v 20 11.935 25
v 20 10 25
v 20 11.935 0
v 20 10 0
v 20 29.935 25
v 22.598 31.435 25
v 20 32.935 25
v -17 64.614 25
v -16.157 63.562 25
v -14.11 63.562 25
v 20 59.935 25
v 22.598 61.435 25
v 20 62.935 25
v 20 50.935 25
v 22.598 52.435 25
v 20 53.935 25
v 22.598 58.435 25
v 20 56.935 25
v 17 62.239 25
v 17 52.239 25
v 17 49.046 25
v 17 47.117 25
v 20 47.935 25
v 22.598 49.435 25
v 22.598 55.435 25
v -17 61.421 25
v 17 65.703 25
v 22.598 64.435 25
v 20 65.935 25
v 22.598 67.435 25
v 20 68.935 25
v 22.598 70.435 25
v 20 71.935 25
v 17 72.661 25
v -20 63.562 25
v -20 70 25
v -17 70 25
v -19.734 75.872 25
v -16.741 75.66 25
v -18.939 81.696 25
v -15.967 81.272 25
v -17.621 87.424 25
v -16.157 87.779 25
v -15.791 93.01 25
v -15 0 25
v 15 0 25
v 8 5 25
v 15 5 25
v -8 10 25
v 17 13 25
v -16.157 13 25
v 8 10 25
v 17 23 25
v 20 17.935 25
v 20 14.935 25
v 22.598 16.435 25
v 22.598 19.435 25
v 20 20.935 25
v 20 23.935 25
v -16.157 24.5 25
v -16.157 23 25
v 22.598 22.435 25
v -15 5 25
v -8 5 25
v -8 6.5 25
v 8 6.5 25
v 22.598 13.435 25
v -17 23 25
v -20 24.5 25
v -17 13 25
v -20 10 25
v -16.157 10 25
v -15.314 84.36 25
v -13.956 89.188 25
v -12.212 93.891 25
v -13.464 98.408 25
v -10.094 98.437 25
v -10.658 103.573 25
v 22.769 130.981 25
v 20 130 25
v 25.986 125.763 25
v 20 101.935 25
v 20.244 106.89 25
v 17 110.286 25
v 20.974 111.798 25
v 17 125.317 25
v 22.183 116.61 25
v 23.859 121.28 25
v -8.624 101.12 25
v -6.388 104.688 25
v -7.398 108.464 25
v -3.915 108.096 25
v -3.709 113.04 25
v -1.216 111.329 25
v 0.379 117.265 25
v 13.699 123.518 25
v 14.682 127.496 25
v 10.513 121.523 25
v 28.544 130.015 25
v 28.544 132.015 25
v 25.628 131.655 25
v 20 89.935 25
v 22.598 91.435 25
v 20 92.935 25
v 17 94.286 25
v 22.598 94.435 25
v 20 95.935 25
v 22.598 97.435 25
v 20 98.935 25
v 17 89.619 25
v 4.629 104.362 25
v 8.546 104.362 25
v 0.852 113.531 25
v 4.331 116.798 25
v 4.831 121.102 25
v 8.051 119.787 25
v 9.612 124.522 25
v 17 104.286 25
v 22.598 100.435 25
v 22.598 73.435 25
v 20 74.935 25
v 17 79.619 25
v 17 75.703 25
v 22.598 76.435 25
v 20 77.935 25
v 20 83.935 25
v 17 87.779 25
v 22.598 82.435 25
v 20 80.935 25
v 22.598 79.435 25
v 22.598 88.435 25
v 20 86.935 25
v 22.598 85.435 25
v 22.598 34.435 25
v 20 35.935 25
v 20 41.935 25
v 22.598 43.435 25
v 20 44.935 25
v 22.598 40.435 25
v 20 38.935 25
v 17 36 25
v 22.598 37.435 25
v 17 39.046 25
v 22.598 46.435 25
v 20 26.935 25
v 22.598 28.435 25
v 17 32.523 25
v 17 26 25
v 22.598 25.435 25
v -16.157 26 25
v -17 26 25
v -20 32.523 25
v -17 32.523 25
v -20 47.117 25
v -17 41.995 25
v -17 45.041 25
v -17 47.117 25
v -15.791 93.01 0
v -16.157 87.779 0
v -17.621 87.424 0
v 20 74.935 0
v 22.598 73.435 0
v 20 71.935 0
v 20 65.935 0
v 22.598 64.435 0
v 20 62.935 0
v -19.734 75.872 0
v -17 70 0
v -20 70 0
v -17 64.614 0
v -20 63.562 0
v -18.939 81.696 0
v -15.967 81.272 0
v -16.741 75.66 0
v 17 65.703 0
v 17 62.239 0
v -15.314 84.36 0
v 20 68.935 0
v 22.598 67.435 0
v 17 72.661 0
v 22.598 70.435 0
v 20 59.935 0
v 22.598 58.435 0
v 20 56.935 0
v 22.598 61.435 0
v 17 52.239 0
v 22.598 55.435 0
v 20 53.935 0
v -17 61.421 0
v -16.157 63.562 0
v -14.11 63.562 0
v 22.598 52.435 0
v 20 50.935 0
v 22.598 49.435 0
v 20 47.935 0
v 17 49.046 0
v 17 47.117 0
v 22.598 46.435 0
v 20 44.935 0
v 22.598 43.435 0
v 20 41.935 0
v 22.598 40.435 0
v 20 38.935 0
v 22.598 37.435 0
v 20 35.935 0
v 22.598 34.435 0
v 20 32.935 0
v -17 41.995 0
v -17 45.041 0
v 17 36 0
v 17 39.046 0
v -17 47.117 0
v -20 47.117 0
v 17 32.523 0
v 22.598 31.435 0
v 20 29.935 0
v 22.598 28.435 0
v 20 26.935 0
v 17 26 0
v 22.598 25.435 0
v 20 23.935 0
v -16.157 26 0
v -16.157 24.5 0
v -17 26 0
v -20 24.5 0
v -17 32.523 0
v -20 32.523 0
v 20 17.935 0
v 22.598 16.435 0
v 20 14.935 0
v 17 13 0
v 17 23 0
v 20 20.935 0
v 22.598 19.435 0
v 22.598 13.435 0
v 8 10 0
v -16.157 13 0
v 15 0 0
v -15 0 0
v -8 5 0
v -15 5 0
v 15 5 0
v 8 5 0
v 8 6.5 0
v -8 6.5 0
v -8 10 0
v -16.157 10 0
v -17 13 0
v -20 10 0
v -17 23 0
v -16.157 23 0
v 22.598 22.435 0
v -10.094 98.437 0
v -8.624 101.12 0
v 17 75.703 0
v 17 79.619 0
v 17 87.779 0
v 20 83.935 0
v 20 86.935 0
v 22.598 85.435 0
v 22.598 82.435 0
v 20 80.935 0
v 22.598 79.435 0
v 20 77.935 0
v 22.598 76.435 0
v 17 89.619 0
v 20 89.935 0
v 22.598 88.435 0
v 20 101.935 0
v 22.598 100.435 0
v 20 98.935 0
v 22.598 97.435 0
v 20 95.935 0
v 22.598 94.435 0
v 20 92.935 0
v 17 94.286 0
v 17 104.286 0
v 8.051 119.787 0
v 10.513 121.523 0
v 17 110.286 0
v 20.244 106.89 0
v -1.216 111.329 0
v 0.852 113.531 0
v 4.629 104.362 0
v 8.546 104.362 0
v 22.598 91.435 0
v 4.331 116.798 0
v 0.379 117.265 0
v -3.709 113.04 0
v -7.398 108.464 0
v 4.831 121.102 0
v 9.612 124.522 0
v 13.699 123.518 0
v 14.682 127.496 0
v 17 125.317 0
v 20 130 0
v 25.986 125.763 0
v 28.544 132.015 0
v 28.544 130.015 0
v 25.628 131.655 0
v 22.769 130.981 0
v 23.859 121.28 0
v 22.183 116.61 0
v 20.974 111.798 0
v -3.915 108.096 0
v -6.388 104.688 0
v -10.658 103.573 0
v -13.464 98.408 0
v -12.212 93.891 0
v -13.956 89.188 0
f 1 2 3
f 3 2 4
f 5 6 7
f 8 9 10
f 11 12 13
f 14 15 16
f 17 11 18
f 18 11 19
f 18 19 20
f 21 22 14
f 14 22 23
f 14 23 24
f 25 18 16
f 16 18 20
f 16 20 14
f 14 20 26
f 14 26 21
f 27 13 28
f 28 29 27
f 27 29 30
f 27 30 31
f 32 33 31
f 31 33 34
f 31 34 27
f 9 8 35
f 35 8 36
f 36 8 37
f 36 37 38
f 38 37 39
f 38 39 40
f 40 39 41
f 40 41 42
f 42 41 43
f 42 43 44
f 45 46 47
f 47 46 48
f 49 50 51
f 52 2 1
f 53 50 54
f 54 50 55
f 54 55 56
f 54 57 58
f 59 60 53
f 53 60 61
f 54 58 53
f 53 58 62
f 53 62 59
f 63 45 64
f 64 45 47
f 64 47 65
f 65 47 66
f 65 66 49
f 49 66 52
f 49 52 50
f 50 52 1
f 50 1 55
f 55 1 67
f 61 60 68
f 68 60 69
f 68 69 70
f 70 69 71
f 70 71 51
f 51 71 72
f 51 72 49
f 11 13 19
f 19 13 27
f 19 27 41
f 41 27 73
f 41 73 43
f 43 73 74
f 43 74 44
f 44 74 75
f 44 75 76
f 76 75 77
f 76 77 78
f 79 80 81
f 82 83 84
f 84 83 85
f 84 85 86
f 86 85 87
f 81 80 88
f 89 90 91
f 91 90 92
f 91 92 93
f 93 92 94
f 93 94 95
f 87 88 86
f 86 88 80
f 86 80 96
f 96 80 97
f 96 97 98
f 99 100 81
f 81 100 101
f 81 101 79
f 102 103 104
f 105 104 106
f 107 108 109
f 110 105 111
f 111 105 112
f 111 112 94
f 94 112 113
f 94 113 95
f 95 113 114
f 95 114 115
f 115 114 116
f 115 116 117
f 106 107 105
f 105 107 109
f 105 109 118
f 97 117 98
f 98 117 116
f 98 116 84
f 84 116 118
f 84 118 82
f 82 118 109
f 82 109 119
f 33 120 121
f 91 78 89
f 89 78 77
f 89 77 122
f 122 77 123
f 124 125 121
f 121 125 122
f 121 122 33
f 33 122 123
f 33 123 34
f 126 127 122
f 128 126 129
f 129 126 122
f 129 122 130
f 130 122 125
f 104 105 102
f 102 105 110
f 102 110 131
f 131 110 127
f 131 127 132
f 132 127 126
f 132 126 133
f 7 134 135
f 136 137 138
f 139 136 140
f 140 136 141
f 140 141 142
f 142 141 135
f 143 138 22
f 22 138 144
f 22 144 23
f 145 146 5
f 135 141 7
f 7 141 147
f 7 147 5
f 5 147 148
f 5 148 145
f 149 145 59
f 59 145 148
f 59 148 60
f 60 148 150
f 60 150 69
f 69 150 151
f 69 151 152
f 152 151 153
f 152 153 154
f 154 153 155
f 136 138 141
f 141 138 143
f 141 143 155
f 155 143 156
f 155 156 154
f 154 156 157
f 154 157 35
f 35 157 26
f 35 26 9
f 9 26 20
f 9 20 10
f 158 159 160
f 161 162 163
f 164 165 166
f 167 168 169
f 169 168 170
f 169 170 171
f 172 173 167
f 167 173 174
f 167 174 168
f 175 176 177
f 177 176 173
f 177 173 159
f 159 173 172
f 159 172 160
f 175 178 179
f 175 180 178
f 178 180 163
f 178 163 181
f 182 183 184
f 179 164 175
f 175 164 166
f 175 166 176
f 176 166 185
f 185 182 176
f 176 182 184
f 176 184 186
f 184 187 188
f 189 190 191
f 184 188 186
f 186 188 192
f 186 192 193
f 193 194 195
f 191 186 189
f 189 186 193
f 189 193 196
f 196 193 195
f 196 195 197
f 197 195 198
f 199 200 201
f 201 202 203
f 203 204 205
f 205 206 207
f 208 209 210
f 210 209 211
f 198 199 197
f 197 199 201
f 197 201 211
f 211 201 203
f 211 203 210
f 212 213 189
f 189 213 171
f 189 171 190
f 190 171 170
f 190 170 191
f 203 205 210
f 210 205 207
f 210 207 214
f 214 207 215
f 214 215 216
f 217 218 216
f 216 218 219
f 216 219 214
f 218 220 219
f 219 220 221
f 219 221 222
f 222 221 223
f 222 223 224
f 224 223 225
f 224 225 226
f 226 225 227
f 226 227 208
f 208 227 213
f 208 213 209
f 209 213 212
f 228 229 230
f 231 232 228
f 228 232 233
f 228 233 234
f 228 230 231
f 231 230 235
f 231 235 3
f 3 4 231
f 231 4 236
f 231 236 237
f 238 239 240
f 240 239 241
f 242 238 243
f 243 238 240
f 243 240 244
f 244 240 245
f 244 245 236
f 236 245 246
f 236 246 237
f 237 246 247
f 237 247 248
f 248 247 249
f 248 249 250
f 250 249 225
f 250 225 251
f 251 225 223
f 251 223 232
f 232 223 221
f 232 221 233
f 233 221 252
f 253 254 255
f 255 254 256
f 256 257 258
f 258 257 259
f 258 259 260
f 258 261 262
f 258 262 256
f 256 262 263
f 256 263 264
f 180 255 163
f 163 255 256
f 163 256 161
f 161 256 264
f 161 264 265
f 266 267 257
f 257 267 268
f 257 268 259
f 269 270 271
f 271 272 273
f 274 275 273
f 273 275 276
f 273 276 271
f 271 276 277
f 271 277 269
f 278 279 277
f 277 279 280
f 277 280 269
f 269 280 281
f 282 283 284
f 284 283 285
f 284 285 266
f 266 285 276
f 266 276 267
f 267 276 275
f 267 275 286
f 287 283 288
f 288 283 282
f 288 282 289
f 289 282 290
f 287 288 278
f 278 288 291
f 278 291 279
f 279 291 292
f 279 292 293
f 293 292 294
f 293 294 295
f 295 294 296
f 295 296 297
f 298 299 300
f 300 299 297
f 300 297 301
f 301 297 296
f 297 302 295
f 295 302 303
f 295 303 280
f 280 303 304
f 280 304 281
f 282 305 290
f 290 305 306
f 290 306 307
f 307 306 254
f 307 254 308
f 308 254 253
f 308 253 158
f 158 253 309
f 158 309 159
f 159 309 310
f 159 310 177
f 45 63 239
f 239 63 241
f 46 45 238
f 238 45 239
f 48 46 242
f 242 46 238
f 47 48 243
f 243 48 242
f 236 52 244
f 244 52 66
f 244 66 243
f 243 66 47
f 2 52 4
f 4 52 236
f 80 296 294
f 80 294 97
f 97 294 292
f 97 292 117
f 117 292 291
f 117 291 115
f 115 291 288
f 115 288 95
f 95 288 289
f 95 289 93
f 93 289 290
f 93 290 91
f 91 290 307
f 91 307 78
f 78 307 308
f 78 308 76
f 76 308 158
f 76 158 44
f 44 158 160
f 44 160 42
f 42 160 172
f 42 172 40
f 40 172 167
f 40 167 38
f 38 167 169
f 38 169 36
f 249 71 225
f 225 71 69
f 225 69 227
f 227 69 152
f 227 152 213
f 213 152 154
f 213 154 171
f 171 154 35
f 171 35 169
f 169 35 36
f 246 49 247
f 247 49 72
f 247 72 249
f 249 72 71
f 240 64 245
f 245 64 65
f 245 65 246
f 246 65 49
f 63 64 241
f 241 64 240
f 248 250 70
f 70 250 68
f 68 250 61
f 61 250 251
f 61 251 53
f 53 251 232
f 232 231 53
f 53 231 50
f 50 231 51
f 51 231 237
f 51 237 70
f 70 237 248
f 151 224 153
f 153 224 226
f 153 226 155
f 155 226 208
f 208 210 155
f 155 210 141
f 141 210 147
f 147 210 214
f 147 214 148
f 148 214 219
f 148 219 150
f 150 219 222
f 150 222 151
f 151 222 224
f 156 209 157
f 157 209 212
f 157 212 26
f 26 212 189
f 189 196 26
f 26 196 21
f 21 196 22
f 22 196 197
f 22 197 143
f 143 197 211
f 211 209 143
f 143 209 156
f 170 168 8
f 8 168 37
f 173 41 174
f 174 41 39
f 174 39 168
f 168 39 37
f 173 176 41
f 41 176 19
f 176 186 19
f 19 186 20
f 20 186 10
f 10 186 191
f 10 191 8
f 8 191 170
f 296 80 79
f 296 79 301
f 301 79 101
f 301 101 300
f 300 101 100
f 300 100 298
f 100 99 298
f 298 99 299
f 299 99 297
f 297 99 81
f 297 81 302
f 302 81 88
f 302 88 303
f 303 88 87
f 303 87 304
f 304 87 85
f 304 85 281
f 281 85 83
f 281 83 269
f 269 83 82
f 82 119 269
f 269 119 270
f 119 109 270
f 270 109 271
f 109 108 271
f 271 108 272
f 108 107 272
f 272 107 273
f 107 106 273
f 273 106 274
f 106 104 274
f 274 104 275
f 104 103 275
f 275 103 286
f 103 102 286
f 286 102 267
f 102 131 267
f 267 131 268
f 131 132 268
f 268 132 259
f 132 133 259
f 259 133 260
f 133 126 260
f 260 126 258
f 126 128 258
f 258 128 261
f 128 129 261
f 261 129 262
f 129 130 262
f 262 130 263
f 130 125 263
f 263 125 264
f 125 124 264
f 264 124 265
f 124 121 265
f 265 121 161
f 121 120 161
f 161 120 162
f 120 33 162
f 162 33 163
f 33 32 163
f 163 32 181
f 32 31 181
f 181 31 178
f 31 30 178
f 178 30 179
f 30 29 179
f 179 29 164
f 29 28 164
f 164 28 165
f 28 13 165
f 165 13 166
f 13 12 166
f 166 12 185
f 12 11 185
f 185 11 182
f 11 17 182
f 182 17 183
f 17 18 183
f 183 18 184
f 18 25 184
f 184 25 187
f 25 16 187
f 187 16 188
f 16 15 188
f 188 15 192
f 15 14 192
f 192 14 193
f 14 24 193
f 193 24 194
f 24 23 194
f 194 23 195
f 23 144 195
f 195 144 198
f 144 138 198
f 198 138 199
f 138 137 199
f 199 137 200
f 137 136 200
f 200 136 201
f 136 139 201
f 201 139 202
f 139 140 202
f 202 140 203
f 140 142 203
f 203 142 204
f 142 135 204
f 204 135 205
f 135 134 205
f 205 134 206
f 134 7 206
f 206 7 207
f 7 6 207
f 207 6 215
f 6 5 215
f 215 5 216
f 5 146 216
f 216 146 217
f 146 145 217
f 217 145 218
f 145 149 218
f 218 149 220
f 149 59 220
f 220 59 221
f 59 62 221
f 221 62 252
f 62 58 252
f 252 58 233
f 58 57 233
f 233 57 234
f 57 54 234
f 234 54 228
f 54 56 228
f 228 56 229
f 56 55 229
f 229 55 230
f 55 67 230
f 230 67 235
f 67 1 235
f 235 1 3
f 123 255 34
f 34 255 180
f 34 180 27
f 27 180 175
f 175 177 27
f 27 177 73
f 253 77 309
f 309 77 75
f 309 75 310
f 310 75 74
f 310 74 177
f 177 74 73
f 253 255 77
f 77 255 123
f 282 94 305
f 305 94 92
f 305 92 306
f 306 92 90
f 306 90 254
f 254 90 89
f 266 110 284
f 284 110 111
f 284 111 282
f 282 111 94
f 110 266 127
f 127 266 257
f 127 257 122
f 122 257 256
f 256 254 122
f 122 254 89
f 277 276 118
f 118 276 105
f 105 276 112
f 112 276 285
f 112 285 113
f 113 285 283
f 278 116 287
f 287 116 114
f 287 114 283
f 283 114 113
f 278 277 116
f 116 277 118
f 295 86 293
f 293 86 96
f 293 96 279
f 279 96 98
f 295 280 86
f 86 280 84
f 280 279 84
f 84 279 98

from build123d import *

# Parameters (mm, degrees)
BOSS_EXTRUDE1_DEPTH = 25
SKETCH3_W           = 34
SKETCH3_H           = 10
CUT_EXTRUDE1_DEPTH  = 134.88427839
CUT_EXTRUDE2_DEPTH  = 134.88427839
CUT_EXTRUDE3_DEPTH  = 134.88427839
CUT_EXTRUDE4_DEPTH  = 134.88427839
BOSS_EXTRUDE2_DEPTH = 25
BOSS_EXTRUDE3_DEPTH = 25
LPATTERN1_COUNT     = 30
LPATTERN1_PITCH     = 3
CUT_EXTRUDE5_DEPTH  = 138.359842306
CUT_EXTRUDE6_DEPTH  = 138.359842306
CUT_EXTRUDE7_DEPTH  = 138.359842306
CUT_EXTRUDE8_DEPTH  = 138.359842306


with BuildPart() as part:
    # Sketch2 → Boss-Extrude1 (new body)
    with BuildSketch(Plane.XY):
        with BuildLine():
            Line((-15, 0), (15, 0))
            Line((15, 0), (15, 5))
            Line((15, 5), (8, 5))
            Line((8, 5), (8, 10))
            Line((8, 10), (20, 10))
            Line((20, 10), (20, 130))
            ThreePointArc((20, 130), (-9.083269132, 106.055512755), (-20, 70))
            Line((-20, 70), (-20, 10))
            Line((-20, 10), (-8, 10))
            Line((-8, 10), (-8, 5))
            Line((-8, 5), (-15, 5))
            Line((-15, 5), (-15, 0))
        make_face()
    extrude(amount=BOSS_EXTRUDE1_DEPTH)

    # Sketch3 → Cut-Extrude1 (cut, through all)
    with BuildSketch(Plane.XY.offset(25)):
        with Locations((0, 18)):
            Rectangle(SKETCH3_W, SKETCH3_H)
    extrude(amount=-CUT_EXTRUDE1_DEPTH, mode=Mode.SUBTRACT)

    # Sketch4 → Cut-Extrude2 (cut, through all)
    with BuildSketch(Plane.XY.offset(25)):
        Polygon((-17, 26), (17, 26), (17, 36), (-17, 41.995117344), align=None)
    extrude(amount=-CUT_EXTRUDE2_DEPTH, mode=Mode.SUBTRACT)

    # Sketch5 → Cut-Extrude3 (cut, through all)
    with BuildSketch(Plane.XY.offset(25)):
        Polygon((-17, 45.04139718), (17, 39.046279836), (17, 49.046279836), (-17, 61.421267801), align=None)
    extrude(amount=-CUT_EXTRUDE3_DEPTH, mode=Mode.SUBTRACT)

    # Sketch6 → Cut-Extrude4 (cut, through all)
    with BuildSketch(Plane.XY.offset(25)):
        with BuildLine():
            Line((-17, 64.613801118), (17, 52.238813153))
            Line((17, 52.238813153), (17, 62.238813153))
            Line((17, 62.238813153), (-15.966701553, 81.272147169))
            ThreePointArc((-15.966701553, 81.272147169), (-16.741134976, 75.659704221), (-17, 70))
            Line((-17, 70), (-17, 64.613801118))
        make_face()
    extrude(amount=-CUT_EXTRUDE4_DEPTH, mode=Mode.SUBTRACT)

    # Sketch13 → Boss-Extrude2 (add)
    with BuildSketch(Plane.XY.offset(25)):
        with BuildLine():
            Line((28.543587015, 132.015112463), (28.543587015, 130.015112463))
            ThreePointArc((28.543587015, 130.015112463), (22.183163486, 116.610368534), (20, 101.934676234))
            Line((20, 101.934676234), (20, 130))
            ThreePointArc((20, 130), (24.189413282, 131.356828362), (28.543587015, 132.015112463))
        make_face()
    extrude(amount=-BOSS_EXTRUDE2_DEPTH)

    # Sketch15 → Boss-Extrude3 (add)
    with BuildSketch(Plane.XY.offset(25)):
        Polygon((20, 101.934676234), (22.598076211, 100.434676234), (20, 98.934676234), align=None)
    boss_extrude3 = extrude(amount=-BOSS_EXTRUDE3_DEPTH)

    # LPattern1: Boss-Extrude3 ×30
    with Locations(*[(0, -i * LPATTERN1_PITCH, 0) for i in range(1, LPATTERN1_COUNT)]):
        add(boss_extrude3)

    # Sketch17 → Cut-Extrude5 (cut, through all)
    with BuildSketch(Plane.XY.offset(25)):
        with BuildLine():
            Line((-15.314209237, 84.35953217), (17, 65.702914768))
            Line((17, 65.702914768), (17, 75.702914768))
            Line((17, 75.702914768), (-10.093752299, 98.43727233))
            ThreePointArc((-10.093752299, 98.43727233), (-13.131704676, 91.557015366), (-15.314209237, 84.35953217))
        make_face()
    extrude(amount=-CUT_EXTRUDE5_DEPTH, mode=Mode.SUBTRACT)

    # Sketch18 → Cut-Extrude6 (cut, through all)
    with BuildSketch(Plane.XY.offset(25)):
        with BuildLine():
            Line((-8.623988609, 101.120216028), (17, 79.619136636))
            Line((17, 79.619136636), (17, 89.619136636))
            Line((17, 89.619136636), (-1.21635527, 111.328543473))
            ThreePointArc((-1.21635527, 111.328543473), (-5.18043497, 106.413238612), (-8.623988609, 101.120216028))
        make_face()
    extrude(amount=-CUT_EXTRUDE6_DEPTH, mode=Mode.SUBTRACT)

    # Sketch19 → Cut-Extrude7 (cut, through all)
    with BuildSketch(Plane.XY.offset(25)):
        with BuildLine():
            Line((0.851852517, 113.530920893), (17, 94.286308117))
            Line((17, 94.286308117), (17, 104.286308117))
            Line((17, 104.286308117), (8.050664287, 119.787012266))
            ThreePointArc((8.050664287, 119.787012266), (4.330784185, 116.797594863), (0.851852517, 113.530920893))
        make_face()
    extrude(amount=-CUT_EXTRUDE7_DEPTH, mode=Mode.SUBTRACT)

    # Sketch21 → Cut-Extrude8 (cut, through all)
    with BuildSketch(Plane.XY.offset(25)):
        with BuildLine():
            Line((10.512523927, 121.522946287), (17, 110.286308117))
            Line((17, 110.286308117), (17, 125.317266744))
            ThreePointArc((17, 125.317266744), (13.698715946, 123.518497892), (10.512523927, 121.522946287))
        make_face()
    extrude(amount=-CUT_EXTRUDE8_DEPTH, mode=Mode.SUBTRACT)


solid = part.part
